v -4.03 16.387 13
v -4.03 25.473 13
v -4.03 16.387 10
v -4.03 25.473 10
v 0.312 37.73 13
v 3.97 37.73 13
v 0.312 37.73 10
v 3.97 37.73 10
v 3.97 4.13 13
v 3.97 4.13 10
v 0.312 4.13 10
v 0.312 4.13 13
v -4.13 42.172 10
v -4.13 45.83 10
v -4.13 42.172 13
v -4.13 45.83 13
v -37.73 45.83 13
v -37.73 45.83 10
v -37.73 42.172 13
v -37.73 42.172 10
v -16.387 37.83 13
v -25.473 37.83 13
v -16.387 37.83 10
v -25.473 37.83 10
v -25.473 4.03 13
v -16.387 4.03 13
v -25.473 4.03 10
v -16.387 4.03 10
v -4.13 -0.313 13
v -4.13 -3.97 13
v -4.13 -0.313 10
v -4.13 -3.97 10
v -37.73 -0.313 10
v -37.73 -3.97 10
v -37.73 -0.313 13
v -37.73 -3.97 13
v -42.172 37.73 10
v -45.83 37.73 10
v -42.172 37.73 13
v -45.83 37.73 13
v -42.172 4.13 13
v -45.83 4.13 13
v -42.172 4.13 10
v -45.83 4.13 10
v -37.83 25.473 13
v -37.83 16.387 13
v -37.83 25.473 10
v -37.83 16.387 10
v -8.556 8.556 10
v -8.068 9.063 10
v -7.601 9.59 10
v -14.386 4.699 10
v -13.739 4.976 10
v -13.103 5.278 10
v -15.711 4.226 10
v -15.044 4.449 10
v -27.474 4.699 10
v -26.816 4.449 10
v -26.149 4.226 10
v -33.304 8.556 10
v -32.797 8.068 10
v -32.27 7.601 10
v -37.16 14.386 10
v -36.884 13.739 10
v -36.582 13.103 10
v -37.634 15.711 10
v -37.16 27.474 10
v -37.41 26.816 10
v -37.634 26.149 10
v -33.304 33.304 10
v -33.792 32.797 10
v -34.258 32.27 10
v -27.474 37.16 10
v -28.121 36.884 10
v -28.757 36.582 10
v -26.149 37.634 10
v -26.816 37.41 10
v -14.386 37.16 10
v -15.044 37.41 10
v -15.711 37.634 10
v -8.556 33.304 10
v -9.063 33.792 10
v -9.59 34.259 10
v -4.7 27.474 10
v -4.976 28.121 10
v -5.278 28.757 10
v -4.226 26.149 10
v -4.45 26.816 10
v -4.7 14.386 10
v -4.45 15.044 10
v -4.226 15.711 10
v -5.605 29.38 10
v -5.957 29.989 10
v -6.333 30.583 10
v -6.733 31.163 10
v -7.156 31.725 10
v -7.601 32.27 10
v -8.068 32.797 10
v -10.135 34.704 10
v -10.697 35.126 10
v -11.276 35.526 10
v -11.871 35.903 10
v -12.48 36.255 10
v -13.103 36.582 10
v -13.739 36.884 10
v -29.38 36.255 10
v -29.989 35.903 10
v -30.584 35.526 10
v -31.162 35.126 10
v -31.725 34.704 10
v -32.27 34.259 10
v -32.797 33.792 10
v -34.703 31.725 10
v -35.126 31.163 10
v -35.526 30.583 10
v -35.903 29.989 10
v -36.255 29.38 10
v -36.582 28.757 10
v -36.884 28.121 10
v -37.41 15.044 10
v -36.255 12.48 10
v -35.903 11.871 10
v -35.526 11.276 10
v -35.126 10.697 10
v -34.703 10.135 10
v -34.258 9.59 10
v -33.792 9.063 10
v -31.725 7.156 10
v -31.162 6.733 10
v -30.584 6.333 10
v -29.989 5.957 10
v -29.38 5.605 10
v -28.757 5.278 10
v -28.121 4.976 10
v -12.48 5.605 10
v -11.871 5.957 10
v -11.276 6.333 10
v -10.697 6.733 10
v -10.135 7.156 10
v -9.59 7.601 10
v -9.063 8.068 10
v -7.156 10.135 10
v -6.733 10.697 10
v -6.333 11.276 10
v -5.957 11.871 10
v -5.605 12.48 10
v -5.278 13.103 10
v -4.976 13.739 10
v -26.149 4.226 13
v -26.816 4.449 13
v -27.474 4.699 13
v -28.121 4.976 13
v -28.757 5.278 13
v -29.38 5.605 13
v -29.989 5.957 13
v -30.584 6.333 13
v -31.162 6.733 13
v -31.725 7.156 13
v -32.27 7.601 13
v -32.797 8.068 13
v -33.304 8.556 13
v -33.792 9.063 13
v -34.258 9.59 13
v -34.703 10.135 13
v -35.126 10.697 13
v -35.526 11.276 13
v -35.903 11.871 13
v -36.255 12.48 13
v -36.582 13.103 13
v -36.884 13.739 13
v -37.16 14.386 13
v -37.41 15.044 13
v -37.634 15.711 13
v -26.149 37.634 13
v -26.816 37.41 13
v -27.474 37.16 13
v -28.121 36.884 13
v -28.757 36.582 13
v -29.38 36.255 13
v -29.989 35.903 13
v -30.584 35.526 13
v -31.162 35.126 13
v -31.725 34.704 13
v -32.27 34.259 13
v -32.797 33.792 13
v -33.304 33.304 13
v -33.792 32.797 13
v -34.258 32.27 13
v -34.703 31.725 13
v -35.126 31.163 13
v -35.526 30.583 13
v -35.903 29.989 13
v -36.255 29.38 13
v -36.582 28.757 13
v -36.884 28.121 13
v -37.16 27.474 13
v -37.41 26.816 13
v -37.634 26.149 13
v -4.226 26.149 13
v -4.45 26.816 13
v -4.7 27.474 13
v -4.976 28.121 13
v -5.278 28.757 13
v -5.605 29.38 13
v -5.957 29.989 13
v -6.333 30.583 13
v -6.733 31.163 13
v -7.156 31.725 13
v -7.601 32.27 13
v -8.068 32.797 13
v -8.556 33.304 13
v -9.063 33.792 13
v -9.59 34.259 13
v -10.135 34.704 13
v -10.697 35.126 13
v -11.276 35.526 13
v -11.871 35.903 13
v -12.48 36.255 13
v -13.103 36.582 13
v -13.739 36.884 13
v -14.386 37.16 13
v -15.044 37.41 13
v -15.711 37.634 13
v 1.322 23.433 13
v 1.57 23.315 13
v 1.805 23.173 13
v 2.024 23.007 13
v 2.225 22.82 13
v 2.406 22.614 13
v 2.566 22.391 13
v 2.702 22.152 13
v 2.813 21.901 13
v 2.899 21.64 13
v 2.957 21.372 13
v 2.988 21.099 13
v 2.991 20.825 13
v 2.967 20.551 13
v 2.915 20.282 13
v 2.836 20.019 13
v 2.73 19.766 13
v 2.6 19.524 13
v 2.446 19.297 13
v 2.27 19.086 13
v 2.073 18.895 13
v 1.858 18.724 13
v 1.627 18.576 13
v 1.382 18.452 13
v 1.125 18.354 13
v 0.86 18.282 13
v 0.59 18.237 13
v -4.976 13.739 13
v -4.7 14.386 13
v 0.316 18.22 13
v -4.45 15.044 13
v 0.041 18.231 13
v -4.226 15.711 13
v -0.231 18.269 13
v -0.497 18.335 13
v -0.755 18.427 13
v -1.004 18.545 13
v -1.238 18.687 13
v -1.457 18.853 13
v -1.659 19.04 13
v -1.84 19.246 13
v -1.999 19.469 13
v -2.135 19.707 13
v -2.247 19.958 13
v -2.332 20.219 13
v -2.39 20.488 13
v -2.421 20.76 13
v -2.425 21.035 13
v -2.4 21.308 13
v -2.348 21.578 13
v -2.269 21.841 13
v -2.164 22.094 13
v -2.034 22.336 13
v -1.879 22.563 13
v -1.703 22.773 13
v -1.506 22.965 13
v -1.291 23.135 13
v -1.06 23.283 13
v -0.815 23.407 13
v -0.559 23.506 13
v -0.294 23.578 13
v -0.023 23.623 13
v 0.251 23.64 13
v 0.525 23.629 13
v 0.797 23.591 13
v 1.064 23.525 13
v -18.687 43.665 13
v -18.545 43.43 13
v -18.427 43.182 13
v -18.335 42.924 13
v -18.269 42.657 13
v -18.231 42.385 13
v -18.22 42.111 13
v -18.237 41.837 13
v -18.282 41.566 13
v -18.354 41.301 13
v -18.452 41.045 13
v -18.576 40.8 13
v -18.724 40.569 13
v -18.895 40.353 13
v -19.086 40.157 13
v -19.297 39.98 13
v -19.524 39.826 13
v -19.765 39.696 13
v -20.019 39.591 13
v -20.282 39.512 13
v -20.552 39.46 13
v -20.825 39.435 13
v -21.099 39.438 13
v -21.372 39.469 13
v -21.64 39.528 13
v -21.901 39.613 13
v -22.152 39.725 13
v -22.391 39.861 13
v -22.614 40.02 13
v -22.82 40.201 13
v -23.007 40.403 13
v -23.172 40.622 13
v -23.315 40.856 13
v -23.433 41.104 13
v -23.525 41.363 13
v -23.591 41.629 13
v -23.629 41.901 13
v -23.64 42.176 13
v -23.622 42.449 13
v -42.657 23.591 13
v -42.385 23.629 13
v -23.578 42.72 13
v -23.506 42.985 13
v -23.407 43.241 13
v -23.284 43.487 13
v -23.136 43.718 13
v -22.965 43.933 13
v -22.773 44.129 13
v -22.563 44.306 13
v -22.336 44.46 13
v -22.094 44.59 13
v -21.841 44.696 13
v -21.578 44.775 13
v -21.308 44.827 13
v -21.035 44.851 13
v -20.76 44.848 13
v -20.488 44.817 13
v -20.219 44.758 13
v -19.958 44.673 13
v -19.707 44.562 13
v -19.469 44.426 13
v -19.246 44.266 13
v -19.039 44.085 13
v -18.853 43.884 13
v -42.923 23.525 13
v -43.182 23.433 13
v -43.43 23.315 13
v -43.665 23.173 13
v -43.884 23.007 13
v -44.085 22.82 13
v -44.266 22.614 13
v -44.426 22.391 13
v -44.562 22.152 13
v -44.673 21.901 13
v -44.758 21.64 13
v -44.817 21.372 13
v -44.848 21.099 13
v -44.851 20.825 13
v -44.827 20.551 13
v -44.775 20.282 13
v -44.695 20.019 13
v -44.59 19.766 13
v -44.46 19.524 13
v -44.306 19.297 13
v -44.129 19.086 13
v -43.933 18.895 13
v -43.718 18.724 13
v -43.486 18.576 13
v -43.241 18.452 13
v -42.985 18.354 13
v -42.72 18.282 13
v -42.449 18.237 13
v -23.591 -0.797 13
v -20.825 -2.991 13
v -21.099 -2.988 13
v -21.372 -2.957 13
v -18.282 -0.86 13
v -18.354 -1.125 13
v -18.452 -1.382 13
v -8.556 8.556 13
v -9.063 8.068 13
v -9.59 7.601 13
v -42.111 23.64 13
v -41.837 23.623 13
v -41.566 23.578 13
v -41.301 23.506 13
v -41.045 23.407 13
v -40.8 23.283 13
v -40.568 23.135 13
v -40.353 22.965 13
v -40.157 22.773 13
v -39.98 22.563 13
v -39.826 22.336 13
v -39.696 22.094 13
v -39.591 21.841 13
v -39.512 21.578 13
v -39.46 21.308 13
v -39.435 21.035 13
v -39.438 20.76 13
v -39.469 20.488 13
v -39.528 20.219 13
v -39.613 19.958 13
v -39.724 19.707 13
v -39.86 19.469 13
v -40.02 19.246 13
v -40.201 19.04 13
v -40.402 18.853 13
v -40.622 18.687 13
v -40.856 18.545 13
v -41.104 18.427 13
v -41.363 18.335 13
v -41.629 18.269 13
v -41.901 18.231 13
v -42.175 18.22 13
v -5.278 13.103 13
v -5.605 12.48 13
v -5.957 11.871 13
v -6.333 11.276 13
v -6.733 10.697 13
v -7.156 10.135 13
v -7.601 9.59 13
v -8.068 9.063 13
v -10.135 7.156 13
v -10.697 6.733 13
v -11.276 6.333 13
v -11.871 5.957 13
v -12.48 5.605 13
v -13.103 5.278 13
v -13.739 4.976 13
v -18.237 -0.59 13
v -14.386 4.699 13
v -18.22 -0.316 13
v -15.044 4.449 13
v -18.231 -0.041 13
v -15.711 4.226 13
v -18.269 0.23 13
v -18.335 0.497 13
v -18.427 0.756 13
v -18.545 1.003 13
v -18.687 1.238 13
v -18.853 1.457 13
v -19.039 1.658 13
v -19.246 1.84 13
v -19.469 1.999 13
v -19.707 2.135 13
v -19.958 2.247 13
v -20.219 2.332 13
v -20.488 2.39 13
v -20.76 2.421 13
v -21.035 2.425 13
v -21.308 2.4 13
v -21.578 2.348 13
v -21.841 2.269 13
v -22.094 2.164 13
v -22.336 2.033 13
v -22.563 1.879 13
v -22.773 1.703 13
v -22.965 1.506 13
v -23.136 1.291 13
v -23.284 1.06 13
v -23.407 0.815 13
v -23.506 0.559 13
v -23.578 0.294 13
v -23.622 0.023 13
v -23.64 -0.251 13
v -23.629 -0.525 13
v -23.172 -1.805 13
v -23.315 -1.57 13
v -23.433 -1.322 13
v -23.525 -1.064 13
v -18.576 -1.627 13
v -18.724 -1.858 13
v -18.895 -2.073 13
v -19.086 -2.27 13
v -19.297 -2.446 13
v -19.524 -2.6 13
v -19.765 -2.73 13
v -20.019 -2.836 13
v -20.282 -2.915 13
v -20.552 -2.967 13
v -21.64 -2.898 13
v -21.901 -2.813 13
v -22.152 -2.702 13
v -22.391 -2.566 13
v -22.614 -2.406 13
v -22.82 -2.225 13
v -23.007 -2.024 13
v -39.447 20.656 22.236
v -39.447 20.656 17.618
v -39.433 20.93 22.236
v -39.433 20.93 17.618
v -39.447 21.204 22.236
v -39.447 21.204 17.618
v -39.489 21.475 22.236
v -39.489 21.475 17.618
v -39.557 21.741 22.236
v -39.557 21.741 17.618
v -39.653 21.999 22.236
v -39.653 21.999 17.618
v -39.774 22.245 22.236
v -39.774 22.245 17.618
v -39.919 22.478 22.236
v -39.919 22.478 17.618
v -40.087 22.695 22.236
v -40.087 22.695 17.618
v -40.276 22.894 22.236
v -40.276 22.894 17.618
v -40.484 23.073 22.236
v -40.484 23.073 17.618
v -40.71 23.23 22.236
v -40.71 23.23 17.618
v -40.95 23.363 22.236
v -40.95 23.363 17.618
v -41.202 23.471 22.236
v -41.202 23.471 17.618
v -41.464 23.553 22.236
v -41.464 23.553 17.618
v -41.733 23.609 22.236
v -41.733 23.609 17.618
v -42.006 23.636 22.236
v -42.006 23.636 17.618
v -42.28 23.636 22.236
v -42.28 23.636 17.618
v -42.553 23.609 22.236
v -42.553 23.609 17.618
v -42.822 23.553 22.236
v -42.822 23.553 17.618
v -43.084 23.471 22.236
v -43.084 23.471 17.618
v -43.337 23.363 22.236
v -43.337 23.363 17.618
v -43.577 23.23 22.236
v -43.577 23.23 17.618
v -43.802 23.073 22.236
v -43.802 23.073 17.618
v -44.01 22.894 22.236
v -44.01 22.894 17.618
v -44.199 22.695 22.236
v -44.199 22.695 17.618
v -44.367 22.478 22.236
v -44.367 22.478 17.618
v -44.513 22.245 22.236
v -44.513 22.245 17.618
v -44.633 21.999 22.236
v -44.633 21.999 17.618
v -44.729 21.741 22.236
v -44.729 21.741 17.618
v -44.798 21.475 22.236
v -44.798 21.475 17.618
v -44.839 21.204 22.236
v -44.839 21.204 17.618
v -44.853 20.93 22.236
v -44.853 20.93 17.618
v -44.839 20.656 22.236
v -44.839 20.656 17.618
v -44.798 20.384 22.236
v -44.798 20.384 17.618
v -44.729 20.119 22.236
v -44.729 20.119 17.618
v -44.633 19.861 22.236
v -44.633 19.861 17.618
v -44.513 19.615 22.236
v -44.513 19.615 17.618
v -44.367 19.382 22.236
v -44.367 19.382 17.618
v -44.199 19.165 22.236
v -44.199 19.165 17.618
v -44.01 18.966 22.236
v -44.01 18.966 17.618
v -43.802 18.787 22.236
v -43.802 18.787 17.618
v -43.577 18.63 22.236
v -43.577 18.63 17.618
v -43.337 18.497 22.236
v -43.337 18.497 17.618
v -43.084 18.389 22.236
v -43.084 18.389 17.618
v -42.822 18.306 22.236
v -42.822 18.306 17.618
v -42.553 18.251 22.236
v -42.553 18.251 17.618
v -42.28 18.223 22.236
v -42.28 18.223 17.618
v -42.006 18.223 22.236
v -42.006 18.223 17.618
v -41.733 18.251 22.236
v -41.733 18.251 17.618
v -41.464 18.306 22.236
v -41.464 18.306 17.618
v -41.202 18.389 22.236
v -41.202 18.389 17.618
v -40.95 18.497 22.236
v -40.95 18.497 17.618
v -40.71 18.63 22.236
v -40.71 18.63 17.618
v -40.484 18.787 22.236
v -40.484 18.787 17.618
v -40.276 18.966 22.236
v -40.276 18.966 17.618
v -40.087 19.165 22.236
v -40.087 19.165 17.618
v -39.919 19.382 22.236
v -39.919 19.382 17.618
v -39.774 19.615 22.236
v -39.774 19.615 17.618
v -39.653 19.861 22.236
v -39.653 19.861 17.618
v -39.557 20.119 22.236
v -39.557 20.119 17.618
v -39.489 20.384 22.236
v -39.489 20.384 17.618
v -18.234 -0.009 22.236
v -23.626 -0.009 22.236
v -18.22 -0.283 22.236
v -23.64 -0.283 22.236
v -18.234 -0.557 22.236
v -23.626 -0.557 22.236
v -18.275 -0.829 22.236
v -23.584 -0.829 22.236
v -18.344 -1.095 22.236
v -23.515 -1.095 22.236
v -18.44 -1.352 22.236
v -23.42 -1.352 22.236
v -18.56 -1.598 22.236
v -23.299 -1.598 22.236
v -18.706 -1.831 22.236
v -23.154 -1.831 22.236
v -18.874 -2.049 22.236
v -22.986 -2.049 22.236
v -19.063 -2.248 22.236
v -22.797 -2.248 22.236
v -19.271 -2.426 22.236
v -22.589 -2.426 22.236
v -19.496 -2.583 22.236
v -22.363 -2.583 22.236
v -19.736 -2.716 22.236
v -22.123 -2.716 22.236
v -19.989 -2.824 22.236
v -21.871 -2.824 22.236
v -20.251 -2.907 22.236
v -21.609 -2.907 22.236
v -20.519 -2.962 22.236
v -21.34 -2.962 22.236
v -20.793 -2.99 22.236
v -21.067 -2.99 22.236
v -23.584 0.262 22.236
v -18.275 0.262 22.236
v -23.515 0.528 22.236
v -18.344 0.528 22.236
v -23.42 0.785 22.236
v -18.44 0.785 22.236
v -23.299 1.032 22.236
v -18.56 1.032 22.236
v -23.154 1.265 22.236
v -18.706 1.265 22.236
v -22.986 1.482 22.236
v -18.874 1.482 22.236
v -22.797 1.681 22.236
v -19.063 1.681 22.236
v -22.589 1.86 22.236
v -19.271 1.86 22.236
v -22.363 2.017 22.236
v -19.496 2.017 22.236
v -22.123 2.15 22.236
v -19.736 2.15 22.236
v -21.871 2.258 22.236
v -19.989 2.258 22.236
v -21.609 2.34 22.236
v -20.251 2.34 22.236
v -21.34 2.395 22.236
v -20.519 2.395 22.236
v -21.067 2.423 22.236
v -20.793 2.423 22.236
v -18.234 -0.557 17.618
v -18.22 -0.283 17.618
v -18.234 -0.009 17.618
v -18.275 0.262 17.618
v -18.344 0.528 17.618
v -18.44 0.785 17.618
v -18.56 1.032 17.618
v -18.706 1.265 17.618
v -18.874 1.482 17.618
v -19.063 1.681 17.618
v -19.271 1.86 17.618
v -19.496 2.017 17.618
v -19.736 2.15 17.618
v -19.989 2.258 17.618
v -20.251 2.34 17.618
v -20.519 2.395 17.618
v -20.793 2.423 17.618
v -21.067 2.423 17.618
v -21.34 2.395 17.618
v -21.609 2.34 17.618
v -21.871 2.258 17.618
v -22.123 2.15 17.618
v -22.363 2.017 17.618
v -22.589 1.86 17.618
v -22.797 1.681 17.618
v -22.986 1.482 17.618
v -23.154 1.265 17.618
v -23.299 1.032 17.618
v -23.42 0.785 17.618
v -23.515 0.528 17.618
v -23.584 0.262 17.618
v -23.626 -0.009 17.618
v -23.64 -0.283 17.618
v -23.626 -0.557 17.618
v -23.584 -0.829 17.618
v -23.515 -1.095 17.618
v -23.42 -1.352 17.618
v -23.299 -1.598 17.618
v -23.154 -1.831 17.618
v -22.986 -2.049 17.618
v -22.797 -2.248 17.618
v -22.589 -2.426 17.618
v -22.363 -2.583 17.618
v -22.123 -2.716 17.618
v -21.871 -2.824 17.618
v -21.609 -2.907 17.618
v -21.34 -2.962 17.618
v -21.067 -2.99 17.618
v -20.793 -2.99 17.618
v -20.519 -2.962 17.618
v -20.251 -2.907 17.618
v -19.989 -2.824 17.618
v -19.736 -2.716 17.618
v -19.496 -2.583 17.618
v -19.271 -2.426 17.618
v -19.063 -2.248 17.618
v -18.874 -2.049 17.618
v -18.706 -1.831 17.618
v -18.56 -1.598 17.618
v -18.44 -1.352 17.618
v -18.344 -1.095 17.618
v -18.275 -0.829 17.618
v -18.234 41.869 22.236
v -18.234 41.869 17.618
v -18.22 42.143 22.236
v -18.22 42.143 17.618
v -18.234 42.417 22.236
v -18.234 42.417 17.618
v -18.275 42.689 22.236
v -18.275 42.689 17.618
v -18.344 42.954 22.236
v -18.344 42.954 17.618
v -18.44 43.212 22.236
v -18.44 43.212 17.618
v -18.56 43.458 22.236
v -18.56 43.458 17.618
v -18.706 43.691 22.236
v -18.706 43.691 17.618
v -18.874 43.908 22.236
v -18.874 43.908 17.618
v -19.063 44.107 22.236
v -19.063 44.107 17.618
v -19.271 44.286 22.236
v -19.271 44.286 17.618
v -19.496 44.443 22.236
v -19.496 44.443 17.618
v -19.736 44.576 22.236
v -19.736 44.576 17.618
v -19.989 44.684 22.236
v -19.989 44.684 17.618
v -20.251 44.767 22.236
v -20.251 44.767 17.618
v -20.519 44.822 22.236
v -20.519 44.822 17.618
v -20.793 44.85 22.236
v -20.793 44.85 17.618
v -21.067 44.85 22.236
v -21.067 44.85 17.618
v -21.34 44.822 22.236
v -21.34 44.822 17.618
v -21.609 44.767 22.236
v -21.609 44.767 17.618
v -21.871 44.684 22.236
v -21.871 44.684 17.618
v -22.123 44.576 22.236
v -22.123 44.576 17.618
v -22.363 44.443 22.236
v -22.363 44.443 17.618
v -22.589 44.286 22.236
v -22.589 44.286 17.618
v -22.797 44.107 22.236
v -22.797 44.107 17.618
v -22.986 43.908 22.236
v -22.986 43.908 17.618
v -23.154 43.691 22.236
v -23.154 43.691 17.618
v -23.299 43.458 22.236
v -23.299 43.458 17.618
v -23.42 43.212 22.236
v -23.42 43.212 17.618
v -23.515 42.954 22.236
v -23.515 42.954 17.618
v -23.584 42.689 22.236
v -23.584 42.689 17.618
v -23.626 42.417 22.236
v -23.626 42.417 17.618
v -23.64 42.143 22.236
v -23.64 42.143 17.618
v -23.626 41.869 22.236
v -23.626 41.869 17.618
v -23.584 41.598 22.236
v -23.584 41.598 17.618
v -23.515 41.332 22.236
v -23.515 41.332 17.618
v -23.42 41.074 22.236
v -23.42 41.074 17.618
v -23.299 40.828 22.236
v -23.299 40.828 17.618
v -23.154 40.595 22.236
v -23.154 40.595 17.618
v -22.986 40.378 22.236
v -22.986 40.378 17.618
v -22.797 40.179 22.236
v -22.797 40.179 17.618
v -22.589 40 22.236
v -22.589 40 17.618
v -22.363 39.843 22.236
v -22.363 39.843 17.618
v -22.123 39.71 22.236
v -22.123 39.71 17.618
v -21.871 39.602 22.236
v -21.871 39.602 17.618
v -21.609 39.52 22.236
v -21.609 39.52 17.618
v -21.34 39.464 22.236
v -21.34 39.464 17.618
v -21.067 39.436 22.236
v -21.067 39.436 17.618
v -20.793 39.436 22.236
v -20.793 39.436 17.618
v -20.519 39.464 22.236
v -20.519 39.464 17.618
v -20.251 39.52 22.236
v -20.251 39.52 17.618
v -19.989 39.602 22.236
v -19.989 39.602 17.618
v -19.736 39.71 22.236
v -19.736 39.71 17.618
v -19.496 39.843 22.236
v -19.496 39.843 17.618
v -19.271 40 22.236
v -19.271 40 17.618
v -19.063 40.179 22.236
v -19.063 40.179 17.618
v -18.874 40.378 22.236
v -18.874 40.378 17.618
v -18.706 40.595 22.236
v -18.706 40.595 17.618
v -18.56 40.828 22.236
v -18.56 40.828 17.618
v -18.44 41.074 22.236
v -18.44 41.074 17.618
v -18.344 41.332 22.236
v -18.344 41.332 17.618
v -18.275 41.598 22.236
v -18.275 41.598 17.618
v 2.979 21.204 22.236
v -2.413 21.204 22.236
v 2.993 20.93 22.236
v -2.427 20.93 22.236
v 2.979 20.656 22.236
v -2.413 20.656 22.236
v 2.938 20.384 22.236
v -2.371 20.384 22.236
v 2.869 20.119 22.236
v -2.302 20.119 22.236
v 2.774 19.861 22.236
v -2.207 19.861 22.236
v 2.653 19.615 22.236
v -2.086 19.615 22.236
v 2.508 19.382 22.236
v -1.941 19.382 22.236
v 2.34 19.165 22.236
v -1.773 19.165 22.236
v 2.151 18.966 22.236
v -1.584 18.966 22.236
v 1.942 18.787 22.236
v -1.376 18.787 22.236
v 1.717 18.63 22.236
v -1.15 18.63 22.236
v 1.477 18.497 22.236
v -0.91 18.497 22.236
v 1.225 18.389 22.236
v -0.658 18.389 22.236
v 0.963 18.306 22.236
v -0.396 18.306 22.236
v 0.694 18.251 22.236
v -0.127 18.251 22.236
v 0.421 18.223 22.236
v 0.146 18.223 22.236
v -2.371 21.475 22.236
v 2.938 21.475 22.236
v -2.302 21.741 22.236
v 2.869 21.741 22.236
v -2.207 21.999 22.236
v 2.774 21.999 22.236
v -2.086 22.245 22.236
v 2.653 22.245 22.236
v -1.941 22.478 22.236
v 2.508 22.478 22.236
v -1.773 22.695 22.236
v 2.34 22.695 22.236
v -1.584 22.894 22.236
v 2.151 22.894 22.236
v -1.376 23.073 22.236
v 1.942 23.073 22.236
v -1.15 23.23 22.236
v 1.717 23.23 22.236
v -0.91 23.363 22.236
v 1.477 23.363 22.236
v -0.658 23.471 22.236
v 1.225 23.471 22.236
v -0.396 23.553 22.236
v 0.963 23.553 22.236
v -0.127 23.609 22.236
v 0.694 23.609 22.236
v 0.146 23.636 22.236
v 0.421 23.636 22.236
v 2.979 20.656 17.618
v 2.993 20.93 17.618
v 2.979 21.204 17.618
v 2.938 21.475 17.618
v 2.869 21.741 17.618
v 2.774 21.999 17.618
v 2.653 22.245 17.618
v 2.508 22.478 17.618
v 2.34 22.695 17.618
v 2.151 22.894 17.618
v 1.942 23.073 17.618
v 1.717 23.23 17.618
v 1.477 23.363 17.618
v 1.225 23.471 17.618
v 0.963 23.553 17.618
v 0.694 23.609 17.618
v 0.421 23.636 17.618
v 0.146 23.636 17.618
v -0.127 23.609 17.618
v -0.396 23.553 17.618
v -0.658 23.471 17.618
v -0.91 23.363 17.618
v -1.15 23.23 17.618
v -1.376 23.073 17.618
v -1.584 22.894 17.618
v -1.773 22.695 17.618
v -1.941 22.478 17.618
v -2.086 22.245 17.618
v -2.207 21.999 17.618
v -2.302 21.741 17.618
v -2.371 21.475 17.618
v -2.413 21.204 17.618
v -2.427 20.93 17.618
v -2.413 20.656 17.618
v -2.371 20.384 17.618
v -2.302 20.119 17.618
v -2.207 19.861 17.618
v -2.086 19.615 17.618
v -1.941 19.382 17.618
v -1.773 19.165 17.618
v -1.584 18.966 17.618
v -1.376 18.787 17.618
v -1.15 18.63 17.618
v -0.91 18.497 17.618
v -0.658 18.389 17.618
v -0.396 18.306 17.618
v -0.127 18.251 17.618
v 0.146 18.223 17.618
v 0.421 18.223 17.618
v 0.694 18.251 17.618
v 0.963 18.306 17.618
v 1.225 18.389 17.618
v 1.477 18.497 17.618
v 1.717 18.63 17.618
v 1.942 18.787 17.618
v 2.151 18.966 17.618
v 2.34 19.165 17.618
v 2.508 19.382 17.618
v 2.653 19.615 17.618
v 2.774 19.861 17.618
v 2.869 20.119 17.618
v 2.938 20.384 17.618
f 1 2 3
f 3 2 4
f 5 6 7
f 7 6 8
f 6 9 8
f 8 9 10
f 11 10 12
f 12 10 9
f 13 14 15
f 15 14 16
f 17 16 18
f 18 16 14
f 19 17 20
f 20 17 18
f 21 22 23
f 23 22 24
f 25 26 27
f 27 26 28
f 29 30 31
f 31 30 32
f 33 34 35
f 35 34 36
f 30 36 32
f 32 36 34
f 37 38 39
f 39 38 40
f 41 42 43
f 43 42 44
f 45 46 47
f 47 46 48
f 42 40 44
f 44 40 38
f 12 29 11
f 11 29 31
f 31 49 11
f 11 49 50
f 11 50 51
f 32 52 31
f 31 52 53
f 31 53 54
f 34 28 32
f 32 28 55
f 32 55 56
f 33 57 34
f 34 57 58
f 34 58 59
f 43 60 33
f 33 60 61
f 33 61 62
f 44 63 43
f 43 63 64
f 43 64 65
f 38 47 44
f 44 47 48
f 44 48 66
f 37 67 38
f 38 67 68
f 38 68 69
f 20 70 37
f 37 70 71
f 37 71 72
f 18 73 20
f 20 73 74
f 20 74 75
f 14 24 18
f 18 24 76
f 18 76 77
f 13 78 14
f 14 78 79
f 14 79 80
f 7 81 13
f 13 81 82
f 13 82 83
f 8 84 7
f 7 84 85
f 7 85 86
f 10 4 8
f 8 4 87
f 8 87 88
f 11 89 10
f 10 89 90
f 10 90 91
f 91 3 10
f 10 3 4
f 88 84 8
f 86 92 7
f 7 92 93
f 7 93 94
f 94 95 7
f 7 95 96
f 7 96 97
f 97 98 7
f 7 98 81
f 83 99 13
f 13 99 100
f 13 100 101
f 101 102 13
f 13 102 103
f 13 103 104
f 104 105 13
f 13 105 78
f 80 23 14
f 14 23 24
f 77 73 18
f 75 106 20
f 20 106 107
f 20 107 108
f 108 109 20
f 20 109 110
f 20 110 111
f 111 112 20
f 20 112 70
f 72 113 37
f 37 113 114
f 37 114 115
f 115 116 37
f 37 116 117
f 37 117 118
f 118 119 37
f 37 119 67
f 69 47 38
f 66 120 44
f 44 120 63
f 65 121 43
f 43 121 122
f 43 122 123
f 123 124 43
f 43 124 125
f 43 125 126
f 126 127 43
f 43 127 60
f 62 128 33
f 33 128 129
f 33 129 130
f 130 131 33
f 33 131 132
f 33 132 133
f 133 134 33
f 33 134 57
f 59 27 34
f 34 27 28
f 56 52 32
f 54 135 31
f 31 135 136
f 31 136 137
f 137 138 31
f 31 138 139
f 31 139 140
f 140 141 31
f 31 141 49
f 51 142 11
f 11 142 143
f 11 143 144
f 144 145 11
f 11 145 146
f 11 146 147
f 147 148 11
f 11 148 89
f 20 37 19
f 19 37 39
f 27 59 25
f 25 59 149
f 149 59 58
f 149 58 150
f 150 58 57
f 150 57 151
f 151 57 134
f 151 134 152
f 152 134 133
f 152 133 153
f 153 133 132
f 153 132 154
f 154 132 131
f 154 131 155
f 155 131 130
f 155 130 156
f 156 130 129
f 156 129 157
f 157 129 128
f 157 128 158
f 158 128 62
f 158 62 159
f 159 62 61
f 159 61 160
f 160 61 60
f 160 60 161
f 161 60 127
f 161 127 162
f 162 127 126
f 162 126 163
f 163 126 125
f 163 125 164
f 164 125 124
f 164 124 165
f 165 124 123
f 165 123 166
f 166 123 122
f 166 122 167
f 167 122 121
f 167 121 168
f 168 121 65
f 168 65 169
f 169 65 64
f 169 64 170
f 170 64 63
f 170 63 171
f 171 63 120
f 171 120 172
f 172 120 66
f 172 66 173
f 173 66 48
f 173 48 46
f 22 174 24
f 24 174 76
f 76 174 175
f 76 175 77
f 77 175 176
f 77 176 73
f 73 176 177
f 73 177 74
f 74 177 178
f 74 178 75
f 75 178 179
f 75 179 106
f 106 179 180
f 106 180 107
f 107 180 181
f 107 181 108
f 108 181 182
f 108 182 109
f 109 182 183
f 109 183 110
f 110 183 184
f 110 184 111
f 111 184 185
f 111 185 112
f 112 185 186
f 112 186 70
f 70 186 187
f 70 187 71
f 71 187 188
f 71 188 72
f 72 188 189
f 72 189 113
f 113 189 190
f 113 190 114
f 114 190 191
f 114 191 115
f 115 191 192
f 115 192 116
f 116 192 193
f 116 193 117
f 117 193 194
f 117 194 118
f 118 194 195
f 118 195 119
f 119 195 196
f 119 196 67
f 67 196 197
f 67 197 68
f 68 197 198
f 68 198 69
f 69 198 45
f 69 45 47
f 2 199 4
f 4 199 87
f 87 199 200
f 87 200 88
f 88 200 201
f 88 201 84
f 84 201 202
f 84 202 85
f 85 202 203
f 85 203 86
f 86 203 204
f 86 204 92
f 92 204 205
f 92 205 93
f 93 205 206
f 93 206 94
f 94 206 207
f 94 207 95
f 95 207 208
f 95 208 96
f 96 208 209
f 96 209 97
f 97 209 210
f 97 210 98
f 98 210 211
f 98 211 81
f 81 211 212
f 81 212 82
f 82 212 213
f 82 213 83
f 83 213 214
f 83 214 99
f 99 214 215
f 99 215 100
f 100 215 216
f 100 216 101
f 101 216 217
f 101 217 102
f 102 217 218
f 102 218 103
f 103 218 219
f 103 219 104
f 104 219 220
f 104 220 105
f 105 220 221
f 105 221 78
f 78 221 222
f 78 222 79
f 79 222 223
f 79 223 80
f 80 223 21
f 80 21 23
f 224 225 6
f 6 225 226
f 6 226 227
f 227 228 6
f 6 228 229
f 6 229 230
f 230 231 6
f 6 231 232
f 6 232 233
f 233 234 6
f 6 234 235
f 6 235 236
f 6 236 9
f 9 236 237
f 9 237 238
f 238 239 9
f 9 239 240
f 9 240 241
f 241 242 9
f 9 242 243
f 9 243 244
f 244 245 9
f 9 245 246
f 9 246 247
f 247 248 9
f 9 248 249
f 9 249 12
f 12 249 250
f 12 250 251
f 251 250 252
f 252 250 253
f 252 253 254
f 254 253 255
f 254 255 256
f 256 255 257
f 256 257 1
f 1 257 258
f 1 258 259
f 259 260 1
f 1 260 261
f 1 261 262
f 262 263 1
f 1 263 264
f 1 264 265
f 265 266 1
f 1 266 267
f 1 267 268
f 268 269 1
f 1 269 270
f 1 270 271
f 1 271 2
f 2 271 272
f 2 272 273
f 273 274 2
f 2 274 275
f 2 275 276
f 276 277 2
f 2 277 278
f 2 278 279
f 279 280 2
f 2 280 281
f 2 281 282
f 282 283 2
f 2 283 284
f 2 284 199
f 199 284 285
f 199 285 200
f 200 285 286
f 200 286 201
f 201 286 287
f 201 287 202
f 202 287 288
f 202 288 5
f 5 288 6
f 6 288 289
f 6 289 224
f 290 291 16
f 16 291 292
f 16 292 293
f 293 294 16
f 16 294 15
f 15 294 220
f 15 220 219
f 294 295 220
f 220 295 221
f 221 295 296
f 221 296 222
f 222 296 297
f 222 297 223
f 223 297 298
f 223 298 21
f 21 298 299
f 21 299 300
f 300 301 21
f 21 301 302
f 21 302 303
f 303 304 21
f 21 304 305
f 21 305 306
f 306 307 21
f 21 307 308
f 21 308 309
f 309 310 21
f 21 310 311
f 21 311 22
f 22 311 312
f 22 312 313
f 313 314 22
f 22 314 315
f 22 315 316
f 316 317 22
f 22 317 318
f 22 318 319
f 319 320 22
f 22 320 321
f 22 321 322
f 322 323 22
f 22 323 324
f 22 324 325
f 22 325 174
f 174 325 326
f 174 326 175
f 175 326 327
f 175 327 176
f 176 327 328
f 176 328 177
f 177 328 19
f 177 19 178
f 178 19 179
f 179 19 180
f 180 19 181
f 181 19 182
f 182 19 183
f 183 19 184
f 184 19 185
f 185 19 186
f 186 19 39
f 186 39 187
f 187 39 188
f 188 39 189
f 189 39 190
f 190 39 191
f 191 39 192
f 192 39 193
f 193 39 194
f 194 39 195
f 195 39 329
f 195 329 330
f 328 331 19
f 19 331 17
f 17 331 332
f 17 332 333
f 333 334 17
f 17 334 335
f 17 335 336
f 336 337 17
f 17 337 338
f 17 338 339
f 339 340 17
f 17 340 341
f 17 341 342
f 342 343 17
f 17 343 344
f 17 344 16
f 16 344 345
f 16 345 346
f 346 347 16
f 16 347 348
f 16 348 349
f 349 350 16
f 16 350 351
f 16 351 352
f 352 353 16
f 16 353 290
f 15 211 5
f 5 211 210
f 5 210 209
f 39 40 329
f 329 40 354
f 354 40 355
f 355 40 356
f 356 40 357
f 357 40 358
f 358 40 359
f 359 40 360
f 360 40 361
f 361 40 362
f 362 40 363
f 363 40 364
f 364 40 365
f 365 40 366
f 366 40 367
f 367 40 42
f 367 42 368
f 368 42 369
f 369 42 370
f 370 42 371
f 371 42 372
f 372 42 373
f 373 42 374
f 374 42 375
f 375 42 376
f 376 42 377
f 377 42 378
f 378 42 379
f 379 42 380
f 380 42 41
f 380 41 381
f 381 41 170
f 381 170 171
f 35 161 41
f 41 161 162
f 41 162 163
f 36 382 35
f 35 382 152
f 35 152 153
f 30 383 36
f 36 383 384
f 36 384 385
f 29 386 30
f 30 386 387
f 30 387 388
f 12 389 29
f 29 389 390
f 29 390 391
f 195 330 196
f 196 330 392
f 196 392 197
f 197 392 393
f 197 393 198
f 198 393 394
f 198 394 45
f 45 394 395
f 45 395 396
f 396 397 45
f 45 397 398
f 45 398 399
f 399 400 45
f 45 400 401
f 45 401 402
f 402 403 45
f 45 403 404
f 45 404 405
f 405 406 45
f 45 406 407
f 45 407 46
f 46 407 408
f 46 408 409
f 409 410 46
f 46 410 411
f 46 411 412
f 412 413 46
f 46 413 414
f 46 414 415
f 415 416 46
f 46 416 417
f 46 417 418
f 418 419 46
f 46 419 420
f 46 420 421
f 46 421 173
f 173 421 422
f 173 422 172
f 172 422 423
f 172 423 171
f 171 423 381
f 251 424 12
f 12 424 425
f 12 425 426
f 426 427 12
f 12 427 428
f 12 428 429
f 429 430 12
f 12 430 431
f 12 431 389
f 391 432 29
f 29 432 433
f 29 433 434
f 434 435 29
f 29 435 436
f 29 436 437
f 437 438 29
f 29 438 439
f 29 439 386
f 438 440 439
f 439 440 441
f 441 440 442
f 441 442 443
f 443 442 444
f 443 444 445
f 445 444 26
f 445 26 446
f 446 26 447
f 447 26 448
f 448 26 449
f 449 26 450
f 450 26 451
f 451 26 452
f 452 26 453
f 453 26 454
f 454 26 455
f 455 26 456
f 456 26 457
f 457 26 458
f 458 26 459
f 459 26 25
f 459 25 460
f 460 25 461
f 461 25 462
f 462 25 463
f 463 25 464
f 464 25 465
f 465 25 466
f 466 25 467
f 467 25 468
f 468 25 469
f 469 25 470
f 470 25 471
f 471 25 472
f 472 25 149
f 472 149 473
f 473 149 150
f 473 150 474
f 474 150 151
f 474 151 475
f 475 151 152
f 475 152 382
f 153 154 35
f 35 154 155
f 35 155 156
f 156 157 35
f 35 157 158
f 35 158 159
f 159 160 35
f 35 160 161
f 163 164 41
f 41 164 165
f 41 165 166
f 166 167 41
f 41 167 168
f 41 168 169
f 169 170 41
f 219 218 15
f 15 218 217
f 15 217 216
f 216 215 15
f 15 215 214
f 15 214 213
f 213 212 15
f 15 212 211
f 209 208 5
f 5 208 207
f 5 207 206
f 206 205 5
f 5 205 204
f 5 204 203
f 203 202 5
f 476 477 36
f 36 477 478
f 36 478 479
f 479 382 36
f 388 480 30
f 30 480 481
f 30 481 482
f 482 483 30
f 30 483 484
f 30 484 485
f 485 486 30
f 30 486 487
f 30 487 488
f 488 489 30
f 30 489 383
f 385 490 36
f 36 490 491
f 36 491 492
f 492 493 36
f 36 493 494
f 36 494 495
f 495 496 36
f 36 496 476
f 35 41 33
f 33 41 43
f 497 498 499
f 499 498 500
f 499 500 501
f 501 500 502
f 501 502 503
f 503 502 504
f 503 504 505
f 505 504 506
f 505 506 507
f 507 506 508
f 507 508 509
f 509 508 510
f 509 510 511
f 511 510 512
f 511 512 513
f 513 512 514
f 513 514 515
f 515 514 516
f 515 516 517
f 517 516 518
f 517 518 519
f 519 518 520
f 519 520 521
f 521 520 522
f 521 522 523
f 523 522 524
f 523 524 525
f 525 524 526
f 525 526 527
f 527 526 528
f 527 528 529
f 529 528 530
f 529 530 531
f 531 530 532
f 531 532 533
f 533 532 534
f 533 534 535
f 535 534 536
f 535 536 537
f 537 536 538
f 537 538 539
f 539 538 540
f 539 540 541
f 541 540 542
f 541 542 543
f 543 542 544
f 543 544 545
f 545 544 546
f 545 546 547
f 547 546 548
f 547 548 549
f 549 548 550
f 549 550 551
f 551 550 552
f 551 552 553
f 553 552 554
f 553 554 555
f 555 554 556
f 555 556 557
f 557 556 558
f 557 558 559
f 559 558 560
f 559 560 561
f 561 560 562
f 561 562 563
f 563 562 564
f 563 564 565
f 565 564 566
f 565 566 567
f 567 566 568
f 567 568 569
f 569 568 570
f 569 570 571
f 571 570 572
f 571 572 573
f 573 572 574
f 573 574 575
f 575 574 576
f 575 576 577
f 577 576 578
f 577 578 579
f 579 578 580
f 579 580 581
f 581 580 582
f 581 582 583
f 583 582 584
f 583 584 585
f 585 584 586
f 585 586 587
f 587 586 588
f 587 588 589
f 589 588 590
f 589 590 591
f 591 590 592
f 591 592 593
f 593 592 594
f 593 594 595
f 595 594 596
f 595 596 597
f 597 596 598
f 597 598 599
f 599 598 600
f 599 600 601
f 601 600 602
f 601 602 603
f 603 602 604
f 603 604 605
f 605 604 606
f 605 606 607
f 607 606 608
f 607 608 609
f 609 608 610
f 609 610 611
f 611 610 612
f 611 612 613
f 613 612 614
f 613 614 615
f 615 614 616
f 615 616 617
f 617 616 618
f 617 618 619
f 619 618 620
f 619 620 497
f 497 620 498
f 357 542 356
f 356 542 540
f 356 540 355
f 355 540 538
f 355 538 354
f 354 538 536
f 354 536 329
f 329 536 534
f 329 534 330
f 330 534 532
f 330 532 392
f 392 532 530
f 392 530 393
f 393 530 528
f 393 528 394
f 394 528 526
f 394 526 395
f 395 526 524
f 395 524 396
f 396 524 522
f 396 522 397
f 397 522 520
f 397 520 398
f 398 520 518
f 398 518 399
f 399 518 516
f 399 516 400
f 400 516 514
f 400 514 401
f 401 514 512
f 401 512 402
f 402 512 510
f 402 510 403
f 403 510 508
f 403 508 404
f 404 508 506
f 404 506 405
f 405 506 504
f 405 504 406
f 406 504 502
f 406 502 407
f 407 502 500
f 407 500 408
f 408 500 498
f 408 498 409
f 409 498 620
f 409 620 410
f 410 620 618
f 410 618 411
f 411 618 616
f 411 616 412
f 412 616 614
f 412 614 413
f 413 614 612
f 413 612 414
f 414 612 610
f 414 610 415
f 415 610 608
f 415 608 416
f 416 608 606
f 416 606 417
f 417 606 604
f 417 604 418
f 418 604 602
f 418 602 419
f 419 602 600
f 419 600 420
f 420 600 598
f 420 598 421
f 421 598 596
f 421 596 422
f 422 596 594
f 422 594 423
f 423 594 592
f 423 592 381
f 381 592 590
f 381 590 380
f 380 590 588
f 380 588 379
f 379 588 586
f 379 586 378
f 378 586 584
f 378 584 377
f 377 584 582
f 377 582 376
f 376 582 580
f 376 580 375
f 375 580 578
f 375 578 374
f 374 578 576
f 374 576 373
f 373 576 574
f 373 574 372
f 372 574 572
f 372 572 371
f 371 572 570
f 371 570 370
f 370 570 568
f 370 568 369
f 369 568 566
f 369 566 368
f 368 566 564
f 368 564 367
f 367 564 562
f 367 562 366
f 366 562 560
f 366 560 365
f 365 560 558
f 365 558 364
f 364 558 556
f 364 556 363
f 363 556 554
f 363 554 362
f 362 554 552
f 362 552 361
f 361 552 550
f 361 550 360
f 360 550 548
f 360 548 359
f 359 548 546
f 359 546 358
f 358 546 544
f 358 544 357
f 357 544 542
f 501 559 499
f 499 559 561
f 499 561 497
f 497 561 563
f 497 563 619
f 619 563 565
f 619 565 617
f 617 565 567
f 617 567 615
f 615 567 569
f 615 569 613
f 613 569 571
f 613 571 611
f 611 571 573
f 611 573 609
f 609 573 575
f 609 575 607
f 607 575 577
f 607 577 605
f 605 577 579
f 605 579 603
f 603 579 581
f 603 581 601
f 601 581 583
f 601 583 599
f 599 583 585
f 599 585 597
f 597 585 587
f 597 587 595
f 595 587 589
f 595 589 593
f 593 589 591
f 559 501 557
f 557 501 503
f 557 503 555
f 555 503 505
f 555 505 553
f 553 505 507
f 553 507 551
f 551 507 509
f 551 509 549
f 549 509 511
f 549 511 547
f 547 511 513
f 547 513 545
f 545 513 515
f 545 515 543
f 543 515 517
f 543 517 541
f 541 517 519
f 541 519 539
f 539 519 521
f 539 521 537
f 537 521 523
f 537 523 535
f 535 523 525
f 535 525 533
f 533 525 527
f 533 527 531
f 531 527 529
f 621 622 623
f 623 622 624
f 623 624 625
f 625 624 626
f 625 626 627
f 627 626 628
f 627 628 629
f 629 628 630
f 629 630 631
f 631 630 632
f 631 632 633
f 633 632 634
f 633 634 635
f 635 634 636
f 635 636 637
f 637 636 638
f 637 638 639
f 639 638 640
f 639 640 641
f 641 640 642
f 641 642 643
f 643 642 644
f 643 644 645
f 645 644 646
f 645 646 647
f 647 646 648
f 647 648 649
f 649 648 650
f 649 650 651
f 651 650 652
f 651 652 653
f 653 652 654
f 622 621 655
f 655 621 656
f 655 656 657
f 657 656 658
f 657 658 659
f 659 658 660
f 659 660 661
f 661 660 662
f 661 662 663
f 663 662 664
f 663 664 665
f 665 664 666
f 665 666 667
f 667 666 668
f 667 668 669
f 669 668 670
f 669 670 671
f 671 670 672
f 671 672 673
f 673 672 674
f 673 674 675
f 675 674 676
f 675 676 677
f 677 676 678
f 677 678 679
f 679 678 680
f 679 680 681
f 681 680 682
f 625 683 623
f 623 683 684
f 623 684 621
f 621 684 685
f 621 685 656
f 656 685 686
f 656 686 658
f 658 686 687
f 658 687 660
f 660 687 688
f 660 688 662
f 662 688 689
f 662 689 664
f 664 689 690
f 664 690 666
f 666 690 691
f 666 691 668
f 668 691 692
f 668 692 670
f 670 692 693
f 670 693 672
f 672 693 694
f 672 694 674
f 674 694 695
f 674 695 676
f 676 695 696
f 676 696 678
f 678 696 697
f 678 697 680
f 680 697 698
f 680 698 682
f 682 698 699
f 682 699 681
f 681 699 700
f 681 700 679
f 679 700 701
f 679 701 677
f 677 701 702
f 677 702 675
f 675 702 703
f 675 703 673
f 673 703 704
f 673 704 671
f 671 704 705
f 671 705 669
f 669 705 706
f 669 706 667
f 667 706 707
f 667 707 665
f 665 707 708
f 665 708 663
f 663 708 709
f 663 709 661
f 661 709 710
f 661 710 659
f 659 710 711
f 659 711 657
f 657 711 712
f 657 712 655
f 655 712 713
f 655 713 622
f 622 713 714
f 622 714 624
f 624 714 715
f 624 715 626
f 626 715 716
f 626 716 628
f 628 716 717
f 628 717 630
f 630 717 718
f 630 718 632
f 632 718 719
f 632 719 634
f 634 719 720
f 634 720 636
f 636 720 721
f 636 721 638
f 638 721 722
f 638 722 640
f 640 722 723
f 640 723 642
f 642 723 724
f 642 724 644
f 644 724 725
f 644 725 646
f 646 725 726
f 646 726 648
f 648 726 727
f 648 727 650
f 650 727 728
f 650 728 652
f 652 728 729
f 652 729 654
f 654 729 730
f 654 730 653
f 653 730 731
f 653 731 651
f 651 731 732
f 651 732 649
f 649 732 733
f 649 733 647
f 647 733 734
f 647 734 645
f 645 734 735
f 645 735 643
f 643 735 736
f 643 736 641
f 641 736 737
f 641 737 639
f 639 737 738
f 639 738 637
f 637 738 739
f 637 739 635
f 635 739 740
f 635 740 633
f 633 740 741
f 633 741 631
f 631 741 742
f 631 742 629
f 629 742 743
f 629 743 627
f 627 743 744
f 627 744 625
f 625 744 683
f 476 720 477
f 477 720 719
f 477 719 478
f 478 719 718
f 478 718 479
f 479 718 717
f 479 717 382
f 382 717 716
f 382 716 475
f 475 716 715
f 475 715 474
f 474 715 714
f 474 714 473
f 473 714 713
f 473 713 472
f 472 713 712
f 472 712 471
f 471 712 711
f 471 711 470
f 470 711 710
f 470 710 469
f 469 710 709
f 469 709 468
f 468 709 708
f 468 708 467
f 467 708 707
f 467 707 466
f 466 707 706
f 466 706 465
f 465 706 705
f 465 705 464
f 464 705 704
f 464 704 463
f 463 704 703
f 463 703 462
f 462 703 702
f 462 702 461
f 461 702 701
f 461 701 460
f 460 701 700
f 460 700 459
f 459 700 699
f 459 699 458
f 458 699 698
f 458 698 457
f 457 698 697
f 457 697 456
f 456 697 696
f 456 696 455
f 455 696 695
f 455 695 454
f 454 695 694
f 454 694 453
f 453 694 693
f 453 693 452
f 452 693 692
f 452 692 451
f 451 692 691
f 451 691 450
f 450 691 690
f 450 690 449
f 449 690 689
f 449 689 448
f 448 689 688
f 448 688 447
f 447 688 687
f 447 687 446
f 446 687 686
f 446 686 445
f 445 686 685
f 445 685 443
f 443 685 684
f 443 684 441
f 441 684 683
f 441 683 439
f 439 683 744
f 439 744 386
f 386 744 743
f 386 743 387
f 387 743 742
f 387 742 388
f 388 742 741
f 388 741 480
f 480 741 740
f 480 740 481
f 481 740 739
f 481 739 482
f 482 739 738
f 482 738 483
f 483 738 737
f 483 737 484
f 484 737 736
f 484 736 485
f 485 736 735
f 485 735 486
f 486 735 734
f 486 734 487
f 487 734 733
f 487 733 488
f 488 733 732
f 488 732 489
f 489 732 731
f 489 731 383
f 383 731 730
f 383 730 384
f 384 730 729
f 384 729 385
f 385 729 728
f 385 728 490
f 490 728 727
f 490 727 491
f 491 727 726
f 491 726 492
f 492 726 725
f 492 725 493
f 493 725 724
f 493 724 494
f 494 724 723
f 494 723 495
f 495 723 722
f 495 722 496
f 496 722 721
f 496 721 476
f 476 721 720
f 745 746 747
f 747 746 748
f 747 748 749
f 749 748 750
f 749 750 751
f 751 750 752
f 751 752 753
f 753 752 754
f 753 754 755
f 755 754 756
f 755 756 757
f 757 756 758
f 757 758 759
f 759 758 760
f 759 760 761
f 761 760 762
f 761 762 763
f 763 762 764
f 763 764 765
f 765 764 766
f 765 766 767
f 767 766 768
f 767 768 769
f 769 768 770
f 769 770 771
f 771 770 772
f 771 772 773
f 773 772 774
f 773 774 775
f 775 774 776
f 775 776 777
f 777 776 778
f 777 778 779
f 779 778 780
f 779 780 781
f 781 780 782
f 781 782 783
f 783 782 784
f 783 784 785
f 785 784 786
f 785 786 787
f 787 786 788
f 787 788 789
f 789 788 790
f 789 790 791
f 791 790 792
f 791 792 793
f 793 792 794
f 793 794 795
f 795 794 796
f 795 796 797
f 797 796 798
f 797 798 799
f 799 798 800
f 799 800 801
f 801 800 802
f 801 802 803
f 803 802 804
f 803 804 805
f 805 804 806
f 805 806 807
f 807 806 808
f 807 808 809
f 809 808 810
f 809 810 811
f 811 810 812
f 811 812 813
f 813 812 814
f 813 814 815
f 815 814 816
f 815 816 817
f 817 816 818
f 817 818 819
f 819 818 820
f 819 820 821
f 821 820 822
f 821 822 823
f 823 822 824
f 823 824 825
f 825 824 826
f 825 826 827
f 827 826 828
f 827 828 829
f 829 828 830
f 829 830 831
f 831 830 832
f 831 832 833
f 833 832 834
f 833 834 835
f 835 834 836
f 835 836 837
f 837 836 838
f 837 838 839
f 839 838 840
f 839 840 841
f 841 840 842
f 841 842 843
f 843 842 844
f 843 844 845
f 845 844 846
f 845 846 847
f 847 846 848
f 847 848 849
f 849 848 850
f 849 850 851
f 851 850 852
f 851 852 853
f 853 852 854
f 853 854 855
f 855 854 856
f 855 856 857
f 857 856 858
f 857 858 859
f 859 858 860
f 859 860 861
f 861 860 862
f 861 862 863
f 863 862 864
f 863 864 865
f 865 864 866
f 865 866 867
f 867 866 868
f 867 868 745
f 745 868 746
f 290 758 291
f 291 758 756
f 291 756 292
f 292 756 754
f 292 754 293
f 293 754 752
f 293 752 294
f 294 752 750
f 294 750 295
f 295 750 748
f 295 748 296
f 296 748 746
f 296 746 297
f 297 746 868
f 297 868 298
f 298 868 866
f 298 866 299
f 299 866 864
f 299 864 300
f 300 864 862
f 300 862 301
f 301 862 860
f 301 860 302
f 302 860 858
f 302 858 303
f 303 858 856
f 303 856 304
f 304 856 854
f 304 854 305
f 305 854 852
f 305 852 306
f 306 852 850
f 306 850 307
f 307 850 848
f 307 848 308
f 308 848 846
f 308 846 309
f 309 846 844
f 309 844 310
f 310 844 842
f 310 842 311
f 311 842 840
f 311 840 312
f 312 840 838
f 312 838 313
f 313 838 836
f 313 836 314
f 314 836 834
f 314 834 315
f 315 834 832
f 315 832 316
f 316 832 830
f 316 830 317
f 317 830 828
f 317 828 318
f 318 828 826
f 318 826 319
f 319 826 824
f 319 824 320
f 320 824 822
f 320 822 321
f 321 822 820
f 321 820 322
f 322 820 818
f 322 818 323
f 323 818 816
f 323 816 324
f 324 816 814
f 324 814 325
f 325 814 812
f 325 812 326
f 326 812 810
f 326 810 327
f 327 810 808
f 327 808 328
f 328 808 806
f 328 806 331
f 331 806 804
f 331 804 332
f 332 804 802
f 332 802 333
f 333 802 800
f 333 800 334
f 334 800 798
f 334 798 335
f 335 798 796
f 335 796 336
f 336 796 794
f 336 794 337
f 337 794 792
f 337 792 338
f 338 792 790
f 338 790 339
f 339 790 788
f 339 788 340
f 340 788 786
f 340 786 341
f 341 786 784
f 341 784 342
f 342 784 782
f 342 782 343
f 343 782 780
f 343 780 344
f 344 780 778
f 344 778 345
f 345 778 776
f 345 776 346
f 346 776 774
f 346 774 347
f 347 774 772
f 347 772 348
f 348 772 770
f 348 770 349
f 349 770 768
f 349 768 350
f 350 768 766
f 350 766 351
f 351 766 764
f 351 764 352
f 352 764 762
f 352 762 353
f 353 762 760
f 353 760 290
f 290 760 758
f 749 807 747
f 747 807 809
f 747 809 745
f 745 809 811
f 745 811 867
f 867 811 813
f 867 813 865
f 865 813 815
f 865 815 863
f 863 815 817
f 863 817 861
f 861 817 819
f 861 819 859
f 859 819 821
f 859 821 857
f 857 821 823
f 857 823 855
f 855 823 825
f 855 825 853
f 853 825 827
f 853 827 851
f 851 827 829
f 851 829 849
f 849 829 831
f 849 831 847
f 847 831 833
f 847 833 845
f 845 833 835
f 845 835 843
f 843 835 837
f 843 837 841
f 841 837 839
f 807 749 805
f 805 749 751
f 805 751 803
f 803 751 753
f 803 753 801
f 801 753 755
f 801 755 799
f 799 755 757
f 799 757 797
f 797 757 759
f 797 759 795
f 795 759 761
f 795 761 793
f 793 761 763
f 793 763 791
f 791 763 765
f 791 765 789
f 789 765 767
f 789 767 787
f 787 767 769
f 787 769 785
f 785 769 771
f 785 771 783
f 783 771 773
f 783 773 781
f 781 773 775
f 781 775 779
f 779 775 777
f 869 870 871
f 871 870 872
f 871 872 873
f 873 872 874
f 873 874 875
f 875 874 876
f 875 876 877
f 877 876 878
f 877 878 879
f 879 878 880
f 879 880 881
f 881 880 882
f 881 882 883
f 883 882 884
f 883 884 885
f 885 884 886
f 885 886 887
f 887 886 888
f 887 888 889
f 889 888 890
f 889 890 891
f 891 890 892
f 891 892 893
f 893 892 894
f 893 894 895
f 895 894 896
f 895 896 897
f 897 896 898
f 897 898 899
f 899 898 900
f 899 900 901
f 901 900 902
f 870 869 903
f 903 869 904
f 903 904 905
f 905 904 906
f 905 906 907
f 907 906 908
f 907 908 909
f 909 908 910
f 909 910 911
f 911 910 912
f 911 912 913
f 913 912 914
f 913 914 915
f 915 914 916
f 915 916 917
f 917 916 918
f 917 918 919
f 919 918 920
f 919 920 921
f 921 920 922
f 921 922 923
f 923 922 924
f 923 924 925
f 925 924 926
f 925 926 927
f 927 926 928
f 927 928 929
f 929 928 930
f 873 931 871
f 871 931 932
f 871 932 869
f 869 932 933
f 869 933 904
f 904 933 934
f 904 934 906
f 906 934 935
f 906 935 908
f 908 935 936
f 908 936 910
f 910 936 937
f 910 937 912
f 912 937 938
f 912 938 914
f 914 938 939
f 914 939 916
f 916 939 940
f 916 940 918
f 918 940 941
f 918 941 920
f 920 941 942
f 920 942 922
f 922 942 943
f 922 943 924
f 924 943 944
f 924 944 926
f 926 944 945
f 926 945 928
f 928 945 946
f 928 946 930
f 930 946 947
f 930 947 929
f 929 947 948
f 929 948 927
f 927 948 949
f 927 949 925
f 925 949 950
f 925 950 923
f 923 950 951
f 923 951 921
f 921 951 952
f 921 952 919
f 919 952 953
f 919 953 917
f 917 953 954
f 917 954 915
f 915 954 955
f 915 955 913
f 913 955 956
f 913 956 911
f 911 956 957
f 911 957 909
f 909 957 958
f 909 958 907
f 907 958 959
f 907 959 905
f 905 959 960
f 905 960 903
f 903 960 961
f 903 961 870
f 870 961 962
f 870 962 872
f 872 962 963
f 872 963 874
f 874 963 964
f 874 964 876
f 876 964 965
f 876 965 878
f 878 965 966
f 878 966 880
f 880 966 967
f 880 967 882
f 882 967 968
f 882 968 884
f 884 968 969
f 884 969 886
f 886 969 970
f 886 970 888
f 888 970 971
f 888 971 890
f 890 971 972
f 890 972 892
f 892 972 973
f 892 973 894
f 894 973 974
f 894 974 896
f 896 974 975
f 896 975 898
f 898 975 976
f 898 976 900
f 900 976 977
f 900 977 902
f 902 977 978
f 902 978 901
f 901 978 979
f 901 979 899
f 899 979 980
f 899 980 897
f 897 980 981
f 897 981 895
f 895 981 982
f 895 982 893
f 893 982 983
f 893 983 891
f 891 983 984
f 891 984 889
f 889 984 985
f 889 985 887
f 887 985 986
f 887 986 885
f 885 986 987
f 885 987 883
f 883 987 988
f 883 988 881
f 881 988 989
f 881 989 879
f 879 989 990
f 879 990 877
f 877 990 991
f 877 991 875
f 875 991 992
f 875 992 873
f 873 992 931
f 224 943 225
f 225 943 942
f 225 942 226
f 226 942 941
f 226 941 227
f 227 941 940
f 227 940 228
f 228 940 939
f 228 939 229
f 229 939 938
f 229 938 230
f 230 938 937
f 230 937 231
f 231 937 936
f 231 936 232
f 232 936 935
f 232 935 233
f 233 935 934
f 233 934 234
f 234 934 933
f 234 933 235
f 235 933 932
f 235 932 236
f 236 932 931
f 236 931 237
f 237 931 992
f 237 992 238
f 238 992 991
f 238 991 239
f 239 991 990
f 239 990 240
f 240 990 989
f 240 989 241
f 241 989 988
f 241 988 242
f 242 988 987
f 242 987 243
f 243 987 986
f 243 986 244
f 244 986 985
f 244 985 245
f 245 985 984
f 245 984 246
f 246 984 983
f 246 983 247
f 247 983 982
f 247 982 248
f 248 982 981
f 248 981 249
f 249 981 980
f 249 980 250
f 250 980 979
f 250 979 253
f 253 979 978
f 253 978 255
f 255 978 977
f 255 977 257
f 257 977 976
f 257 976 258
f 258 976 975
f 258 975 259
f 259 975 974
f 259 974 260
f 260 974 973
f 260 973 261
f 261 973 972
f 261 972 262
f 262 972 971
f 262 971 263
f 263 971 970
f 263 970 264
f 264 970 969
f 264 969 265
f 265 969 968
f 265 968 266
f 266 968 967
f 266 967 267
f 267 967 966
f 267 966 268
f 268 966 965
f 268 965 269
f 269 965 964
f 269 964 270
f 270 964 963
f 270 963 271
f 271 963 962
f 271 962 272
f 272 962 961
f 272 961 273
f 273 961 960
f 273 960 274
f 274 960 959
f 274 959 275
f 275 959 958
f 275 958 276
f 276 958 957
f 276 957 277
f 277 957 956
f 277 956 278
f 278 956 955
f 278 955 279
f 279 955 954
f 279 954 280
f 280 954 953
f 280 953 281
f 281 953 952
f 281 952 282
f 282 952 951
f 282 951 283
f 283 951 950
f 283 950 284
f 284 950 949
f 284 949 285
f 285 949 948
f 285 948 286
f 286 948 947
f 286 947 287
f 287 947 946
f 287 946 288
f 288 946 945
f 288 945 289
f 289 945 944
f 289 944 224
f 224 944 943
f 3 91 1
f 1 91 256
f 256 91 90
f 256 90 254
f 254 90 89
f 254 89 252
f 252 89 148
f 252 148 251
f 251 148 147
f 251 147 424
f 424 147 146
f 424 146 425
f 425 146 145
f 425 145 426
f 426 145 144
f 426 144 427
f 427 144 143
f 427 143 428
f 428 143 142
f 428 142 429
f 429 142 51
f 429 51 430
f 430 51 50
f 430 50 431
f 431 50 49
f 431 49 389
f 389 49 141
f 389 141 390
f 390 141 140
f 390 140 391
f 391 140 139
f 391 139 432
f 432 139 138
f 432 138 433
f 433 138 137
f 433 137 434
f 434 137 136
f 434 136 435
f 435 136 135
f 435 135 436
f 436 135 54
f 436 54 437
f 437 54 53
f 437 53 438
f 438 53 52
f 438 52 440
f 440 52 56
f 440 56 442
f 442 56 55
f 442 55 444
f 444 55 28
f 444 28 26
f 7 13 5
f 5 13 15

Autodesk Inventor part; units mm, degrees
ref_plane "YZ Plane" through (0, 0, 0) normal (1, 0, 0) x (0, 1, 0)
ref_plane "XZ Plane" through (0, 0, 0) normal (0, 1, 0) x (-1, 0, 0)
ref_plane "Work Plane1" through (0, 0, 10) normal (0, 0, 1) x (1, 0, 0)
sketch "Sketch1" plane through (0, 0, 10) normal (0, 0, 1) x (1, 0, 0)
  line L0 (-4.0299, -0.3538) -> (-2.2322, 1.4439) construction
  arc A0 (-1.4439, 2.2322) -> (-2.2322, 1.4439) centre (-0.9299, 0.9299) ccw construction
  line L1 (-1.4439, 2.2322) -> (0.3538, 4.0299) construction
  line L2 (-37.8299, 42.8299) -> (-37.8299, 37.8299) construction
  line L3 (-37.8299, 37.8299) -> (-42.9208, 37.8299) construction
  line L4 (-37.8299, 42.2137) -> (-37.8299, 45.8299) construction
  line L5 (-37.8299, 45.8299) -> (-4.0299, 45.8299) construction
  line L6 (-4.0299, 45.8299) -> (-4.0299, 42.2137) construction
  line L7 (-4.0299, 4.0299) -> (0.3538, 4.0299) projected
  circle A1 centre (-20.9299, 20.9299) radius 17.5 projected
  line L8 (-20.9299, 58.9723) -> (17.1124, 20.9299) construction
  line L9 (17.1124, 20.9299) -> (-20.9299, -17.1124) construction
  line L10 (-20.9299, -17.1124) -> (-58.9723, 20.9299) construction
  line L11 (-58.9723, 20.9299) -> (-20.9299, 58.9723) construction
  line L12 (-20.9299, 58.9723) -> (-20.9299, -17.1124) construction
  line L13 (17.1124, 20.9299) -> (-58.9723, 20.9299) construction
  line L14 (-20.9299, 58.9723) -> (32.8701, 58.9723) construction
  line L15 (-43.4299, 43.4299) -> (1.5701, 43.4299) construction
  line L16 (1.5701, 43.4299) -> (1.5701, -1.5701) construction
  line L17 (1.5701, -1.5701) -> (-43.4299, -1.5701) construction
  line L18 (-43.4299, -1.5701) -> (-43.4299, 43.4299) construction
  line L19 (-43.4299, 43.4299) -> (1.5701, -1.5701) construction
  line L20 (1.5701, 43.4299) -> (-43.4299, -1.5701) construction
  line L21 (-43.4299, 5.3876) -> (-43.4299, 36.4723)
  line L22 (-43.4299, 36.4723) -> (-36.4723, 43.4299)
  line L23 (-36.4723, 43.4299) -> (-5.3876, 43.4299)
  line L24 (-5.3876, 43.4299) -> (1.5701, 36.4723)
  line L25 (1.5701, 36.4723) -> (1.5701, 5.3876)
  line L26 (1.5701, 5.3876) -> (-5.3876, -1.5701)
  line L27 (-5.3876, -1.5701) -> (-36.4723, -1.5701)
  line L28 (-36.4723, -1.5701) -> (-43.4299, 5.3876)
  line L29 (-4.0299, 42.2137) -> (-37.8299, 42.2137) projected
  line L30 (-4.0299, -0.3538) -> (-4.0299, 4.0299) projected
  point P0 (-37.8299, 4.0299)
  point P1 (-20.9299, 20.9299)
  dimension "d18" = 53.8
  dimension "d19" = 45
  dimension "d20" = 53.8
  dimension "d21" = 45
  dimension "d22" = 45
extrude "Extrusion1" add sketch "Sketch1" along normal blind 3
sketch "Sketch2" plane through (0, 0, 13) normal (0, 0, 1) x (1, 0, 0)
  circle A0 centre (-35.9299, 35.9299) radius 3.0099 construction
  circle A1 centre (-5.93, 35.9299) radius 3.0099 construction
  circle A2 centre (-5.93, 5.93) radius 3.0099 construction
  circle A3 centre (-35.9299, 5.93) radius 3.0099 construction
  circle A4 centre (-35.9299, 35.9299) radius 2.7099
  circle A5 centre (-5.93, 35.9299) radius 2.7099
  circle A6 centre (-5.93, 5.93) radius 2.7099
  circle A7 centre (-35.9299, 5.93) radius 2.7099
  circle A8 centre (-20.9299, 20.9299) radius 17.5 projected
  line L0 (-20.9299, 42.1431) -> (0.2833, 20.9299)
  line L1 (0.2833, 20.9299) -> (-20.9299, -0.2833)
  line L2 (-20.9299, -0.2833) -> (-42.1431, 20.9299)
  line L3 (-42.1431, 20.9299) -> (-20.9299, 42.1431)
  line L4 (-20.9299, 42.1431) -> (-20.9299, -0.2833) construction
  line L5 (0.2833, 20.9299) -> (-42.1431, 20.9299) construction
  line L6 (-20.9299, 42.1431) -> (9.0701, 42.1431) construction
  circle A9 centre (-20.9299, 42.1431) radius 2.71
  circle A10 centre (0.2833, 20.9299) radius 2.71
  circle A11 centre (-20.9299, -0.2833) radius 2.71
  circle A12 centre (-42.1431, 20.9299) radius 2.71
  point P0 (0, 0)
  dimension "d_1" = 0.3
  dimension "d13" = 0.3
  dimension "d14" = 0.3
  dimension "d15" = 0.3
  dimension "d30" = 30
  dimension "d31" = 45
  dimension "d32" = 30
  dimension "a1" = 5.42
  dimension "d34" = 5.42
  dimension "d35" = 5.42
  dimension "d36" = 5.42
ref_plane "Work Plane2" through (-40.9959, 0.8639, 22.2359) normal (0, 0, 1) x (1, 0, 0)
extrude "Extrusion2" add sketch "Sketch2" along normal up to surface (9.2359 mm away) contours A10 L1 L0 | L0 L1 A10 | A9 L3 L0 | L0 L3 A9 | A11 L2 L1 | L1 L2 A11 | A12 L2 L3 | L3 L2 A12
sketch "Sketch3" plane through (0, 0, 10) normal (0, 0, -1) x (-1, 0, 0)
  line L0 (37.8299, -0.4701) -> (37.8299, 4.0299) construction
  line L1 (4.0299, 4.0299) -> (4.0299, -0.4701) construction
  line L2 (37.8299, -0.4701) -> (37.8299, 1.1886) construction
  line L3 (4.0299, -3.9701) -> (4.0299, -0.3538) construction
  line L4 (45.8299, 4.0299) -> (42.2137, 4.0299) construction
  line L5 (-0.3538, 4.0299) -> (-3.9701, 4.0299) construction
  line L6 (-3.9701, 37.8299) -> (-0.3538, 37.8299) construction
  line L7 (4.0299, 42.2137) -> (4.0299, 45.8299) construction
  line L8 (37.8299, 45.8299) -> (37.8299, 42.2137) construction
  line L9 (42.2137, 37.8299) -> (45.8299, 37.8299) construction
  line L10 (37.8299, 37.7299) -> (45.8299, 37.7299)
  line L11 (45.8299, 37.7299) -> (45.8299, 4.1299)
  line L12 (45.8299, 4.1299) -> (37.8299, 4.1299)
  line L13 (37.8299, 4.1299) -> (37.8299, 37.7299)
  line L14 (37.7299, 4.0299) -> (4.1299, 4.0299)
  line L15 (4.1299, 4.0299) -> (4.1299, -3.9701)
  line L16 (4.1299, -3.9701) -> (37.7299, -3.9701)
  line L17 (37.7299, -3.9701) -> (37.7299, 4.0299)
  line L18 (4.0299, 4.1299) -> (-3.9701, 4.1299)
  line L19 (-3.9701, 4.1299) -> (-3.9701, 37.7299)
  line L20 (-3.9701, 37.7299) -> (4.0299, 37.7299)
  line L21 (4.0299, 37.7299) -> (4.0299, 4.1299)
  line L22 (4.1299, 37.8299) -> (37.7299, 37.8299)
  line L23 (37.7299, 37.8299) -> (37.7299, 45.8299)
  line L24 (37.7299, 45.8299) -> (4.1299, 45.8299)
  line L25 (4.1299, 45.8299) -> (4.1299, 37.8299)
  point P0 (0, 0)
  dimension "d23" = 0.1
  dimension "d24" = 0.1
  dimension "d25" = 0.1
  dimension "d26" = 0.1
  dimension "d27" = 0.1
extrude "Extrusion3" add sketch "Sketch3" against normal up to surface (3 mm away)
equation "\"d13\" = d_1"
equation "\"d14\" = d_1"
equation "\"d15\" = d_1"
equation "\"d34\" = a1"
equation "\"d35\" = a1"
equation "\"d36\" = a1"
properties part number "50_Cube_Insert_Thorlabs"
